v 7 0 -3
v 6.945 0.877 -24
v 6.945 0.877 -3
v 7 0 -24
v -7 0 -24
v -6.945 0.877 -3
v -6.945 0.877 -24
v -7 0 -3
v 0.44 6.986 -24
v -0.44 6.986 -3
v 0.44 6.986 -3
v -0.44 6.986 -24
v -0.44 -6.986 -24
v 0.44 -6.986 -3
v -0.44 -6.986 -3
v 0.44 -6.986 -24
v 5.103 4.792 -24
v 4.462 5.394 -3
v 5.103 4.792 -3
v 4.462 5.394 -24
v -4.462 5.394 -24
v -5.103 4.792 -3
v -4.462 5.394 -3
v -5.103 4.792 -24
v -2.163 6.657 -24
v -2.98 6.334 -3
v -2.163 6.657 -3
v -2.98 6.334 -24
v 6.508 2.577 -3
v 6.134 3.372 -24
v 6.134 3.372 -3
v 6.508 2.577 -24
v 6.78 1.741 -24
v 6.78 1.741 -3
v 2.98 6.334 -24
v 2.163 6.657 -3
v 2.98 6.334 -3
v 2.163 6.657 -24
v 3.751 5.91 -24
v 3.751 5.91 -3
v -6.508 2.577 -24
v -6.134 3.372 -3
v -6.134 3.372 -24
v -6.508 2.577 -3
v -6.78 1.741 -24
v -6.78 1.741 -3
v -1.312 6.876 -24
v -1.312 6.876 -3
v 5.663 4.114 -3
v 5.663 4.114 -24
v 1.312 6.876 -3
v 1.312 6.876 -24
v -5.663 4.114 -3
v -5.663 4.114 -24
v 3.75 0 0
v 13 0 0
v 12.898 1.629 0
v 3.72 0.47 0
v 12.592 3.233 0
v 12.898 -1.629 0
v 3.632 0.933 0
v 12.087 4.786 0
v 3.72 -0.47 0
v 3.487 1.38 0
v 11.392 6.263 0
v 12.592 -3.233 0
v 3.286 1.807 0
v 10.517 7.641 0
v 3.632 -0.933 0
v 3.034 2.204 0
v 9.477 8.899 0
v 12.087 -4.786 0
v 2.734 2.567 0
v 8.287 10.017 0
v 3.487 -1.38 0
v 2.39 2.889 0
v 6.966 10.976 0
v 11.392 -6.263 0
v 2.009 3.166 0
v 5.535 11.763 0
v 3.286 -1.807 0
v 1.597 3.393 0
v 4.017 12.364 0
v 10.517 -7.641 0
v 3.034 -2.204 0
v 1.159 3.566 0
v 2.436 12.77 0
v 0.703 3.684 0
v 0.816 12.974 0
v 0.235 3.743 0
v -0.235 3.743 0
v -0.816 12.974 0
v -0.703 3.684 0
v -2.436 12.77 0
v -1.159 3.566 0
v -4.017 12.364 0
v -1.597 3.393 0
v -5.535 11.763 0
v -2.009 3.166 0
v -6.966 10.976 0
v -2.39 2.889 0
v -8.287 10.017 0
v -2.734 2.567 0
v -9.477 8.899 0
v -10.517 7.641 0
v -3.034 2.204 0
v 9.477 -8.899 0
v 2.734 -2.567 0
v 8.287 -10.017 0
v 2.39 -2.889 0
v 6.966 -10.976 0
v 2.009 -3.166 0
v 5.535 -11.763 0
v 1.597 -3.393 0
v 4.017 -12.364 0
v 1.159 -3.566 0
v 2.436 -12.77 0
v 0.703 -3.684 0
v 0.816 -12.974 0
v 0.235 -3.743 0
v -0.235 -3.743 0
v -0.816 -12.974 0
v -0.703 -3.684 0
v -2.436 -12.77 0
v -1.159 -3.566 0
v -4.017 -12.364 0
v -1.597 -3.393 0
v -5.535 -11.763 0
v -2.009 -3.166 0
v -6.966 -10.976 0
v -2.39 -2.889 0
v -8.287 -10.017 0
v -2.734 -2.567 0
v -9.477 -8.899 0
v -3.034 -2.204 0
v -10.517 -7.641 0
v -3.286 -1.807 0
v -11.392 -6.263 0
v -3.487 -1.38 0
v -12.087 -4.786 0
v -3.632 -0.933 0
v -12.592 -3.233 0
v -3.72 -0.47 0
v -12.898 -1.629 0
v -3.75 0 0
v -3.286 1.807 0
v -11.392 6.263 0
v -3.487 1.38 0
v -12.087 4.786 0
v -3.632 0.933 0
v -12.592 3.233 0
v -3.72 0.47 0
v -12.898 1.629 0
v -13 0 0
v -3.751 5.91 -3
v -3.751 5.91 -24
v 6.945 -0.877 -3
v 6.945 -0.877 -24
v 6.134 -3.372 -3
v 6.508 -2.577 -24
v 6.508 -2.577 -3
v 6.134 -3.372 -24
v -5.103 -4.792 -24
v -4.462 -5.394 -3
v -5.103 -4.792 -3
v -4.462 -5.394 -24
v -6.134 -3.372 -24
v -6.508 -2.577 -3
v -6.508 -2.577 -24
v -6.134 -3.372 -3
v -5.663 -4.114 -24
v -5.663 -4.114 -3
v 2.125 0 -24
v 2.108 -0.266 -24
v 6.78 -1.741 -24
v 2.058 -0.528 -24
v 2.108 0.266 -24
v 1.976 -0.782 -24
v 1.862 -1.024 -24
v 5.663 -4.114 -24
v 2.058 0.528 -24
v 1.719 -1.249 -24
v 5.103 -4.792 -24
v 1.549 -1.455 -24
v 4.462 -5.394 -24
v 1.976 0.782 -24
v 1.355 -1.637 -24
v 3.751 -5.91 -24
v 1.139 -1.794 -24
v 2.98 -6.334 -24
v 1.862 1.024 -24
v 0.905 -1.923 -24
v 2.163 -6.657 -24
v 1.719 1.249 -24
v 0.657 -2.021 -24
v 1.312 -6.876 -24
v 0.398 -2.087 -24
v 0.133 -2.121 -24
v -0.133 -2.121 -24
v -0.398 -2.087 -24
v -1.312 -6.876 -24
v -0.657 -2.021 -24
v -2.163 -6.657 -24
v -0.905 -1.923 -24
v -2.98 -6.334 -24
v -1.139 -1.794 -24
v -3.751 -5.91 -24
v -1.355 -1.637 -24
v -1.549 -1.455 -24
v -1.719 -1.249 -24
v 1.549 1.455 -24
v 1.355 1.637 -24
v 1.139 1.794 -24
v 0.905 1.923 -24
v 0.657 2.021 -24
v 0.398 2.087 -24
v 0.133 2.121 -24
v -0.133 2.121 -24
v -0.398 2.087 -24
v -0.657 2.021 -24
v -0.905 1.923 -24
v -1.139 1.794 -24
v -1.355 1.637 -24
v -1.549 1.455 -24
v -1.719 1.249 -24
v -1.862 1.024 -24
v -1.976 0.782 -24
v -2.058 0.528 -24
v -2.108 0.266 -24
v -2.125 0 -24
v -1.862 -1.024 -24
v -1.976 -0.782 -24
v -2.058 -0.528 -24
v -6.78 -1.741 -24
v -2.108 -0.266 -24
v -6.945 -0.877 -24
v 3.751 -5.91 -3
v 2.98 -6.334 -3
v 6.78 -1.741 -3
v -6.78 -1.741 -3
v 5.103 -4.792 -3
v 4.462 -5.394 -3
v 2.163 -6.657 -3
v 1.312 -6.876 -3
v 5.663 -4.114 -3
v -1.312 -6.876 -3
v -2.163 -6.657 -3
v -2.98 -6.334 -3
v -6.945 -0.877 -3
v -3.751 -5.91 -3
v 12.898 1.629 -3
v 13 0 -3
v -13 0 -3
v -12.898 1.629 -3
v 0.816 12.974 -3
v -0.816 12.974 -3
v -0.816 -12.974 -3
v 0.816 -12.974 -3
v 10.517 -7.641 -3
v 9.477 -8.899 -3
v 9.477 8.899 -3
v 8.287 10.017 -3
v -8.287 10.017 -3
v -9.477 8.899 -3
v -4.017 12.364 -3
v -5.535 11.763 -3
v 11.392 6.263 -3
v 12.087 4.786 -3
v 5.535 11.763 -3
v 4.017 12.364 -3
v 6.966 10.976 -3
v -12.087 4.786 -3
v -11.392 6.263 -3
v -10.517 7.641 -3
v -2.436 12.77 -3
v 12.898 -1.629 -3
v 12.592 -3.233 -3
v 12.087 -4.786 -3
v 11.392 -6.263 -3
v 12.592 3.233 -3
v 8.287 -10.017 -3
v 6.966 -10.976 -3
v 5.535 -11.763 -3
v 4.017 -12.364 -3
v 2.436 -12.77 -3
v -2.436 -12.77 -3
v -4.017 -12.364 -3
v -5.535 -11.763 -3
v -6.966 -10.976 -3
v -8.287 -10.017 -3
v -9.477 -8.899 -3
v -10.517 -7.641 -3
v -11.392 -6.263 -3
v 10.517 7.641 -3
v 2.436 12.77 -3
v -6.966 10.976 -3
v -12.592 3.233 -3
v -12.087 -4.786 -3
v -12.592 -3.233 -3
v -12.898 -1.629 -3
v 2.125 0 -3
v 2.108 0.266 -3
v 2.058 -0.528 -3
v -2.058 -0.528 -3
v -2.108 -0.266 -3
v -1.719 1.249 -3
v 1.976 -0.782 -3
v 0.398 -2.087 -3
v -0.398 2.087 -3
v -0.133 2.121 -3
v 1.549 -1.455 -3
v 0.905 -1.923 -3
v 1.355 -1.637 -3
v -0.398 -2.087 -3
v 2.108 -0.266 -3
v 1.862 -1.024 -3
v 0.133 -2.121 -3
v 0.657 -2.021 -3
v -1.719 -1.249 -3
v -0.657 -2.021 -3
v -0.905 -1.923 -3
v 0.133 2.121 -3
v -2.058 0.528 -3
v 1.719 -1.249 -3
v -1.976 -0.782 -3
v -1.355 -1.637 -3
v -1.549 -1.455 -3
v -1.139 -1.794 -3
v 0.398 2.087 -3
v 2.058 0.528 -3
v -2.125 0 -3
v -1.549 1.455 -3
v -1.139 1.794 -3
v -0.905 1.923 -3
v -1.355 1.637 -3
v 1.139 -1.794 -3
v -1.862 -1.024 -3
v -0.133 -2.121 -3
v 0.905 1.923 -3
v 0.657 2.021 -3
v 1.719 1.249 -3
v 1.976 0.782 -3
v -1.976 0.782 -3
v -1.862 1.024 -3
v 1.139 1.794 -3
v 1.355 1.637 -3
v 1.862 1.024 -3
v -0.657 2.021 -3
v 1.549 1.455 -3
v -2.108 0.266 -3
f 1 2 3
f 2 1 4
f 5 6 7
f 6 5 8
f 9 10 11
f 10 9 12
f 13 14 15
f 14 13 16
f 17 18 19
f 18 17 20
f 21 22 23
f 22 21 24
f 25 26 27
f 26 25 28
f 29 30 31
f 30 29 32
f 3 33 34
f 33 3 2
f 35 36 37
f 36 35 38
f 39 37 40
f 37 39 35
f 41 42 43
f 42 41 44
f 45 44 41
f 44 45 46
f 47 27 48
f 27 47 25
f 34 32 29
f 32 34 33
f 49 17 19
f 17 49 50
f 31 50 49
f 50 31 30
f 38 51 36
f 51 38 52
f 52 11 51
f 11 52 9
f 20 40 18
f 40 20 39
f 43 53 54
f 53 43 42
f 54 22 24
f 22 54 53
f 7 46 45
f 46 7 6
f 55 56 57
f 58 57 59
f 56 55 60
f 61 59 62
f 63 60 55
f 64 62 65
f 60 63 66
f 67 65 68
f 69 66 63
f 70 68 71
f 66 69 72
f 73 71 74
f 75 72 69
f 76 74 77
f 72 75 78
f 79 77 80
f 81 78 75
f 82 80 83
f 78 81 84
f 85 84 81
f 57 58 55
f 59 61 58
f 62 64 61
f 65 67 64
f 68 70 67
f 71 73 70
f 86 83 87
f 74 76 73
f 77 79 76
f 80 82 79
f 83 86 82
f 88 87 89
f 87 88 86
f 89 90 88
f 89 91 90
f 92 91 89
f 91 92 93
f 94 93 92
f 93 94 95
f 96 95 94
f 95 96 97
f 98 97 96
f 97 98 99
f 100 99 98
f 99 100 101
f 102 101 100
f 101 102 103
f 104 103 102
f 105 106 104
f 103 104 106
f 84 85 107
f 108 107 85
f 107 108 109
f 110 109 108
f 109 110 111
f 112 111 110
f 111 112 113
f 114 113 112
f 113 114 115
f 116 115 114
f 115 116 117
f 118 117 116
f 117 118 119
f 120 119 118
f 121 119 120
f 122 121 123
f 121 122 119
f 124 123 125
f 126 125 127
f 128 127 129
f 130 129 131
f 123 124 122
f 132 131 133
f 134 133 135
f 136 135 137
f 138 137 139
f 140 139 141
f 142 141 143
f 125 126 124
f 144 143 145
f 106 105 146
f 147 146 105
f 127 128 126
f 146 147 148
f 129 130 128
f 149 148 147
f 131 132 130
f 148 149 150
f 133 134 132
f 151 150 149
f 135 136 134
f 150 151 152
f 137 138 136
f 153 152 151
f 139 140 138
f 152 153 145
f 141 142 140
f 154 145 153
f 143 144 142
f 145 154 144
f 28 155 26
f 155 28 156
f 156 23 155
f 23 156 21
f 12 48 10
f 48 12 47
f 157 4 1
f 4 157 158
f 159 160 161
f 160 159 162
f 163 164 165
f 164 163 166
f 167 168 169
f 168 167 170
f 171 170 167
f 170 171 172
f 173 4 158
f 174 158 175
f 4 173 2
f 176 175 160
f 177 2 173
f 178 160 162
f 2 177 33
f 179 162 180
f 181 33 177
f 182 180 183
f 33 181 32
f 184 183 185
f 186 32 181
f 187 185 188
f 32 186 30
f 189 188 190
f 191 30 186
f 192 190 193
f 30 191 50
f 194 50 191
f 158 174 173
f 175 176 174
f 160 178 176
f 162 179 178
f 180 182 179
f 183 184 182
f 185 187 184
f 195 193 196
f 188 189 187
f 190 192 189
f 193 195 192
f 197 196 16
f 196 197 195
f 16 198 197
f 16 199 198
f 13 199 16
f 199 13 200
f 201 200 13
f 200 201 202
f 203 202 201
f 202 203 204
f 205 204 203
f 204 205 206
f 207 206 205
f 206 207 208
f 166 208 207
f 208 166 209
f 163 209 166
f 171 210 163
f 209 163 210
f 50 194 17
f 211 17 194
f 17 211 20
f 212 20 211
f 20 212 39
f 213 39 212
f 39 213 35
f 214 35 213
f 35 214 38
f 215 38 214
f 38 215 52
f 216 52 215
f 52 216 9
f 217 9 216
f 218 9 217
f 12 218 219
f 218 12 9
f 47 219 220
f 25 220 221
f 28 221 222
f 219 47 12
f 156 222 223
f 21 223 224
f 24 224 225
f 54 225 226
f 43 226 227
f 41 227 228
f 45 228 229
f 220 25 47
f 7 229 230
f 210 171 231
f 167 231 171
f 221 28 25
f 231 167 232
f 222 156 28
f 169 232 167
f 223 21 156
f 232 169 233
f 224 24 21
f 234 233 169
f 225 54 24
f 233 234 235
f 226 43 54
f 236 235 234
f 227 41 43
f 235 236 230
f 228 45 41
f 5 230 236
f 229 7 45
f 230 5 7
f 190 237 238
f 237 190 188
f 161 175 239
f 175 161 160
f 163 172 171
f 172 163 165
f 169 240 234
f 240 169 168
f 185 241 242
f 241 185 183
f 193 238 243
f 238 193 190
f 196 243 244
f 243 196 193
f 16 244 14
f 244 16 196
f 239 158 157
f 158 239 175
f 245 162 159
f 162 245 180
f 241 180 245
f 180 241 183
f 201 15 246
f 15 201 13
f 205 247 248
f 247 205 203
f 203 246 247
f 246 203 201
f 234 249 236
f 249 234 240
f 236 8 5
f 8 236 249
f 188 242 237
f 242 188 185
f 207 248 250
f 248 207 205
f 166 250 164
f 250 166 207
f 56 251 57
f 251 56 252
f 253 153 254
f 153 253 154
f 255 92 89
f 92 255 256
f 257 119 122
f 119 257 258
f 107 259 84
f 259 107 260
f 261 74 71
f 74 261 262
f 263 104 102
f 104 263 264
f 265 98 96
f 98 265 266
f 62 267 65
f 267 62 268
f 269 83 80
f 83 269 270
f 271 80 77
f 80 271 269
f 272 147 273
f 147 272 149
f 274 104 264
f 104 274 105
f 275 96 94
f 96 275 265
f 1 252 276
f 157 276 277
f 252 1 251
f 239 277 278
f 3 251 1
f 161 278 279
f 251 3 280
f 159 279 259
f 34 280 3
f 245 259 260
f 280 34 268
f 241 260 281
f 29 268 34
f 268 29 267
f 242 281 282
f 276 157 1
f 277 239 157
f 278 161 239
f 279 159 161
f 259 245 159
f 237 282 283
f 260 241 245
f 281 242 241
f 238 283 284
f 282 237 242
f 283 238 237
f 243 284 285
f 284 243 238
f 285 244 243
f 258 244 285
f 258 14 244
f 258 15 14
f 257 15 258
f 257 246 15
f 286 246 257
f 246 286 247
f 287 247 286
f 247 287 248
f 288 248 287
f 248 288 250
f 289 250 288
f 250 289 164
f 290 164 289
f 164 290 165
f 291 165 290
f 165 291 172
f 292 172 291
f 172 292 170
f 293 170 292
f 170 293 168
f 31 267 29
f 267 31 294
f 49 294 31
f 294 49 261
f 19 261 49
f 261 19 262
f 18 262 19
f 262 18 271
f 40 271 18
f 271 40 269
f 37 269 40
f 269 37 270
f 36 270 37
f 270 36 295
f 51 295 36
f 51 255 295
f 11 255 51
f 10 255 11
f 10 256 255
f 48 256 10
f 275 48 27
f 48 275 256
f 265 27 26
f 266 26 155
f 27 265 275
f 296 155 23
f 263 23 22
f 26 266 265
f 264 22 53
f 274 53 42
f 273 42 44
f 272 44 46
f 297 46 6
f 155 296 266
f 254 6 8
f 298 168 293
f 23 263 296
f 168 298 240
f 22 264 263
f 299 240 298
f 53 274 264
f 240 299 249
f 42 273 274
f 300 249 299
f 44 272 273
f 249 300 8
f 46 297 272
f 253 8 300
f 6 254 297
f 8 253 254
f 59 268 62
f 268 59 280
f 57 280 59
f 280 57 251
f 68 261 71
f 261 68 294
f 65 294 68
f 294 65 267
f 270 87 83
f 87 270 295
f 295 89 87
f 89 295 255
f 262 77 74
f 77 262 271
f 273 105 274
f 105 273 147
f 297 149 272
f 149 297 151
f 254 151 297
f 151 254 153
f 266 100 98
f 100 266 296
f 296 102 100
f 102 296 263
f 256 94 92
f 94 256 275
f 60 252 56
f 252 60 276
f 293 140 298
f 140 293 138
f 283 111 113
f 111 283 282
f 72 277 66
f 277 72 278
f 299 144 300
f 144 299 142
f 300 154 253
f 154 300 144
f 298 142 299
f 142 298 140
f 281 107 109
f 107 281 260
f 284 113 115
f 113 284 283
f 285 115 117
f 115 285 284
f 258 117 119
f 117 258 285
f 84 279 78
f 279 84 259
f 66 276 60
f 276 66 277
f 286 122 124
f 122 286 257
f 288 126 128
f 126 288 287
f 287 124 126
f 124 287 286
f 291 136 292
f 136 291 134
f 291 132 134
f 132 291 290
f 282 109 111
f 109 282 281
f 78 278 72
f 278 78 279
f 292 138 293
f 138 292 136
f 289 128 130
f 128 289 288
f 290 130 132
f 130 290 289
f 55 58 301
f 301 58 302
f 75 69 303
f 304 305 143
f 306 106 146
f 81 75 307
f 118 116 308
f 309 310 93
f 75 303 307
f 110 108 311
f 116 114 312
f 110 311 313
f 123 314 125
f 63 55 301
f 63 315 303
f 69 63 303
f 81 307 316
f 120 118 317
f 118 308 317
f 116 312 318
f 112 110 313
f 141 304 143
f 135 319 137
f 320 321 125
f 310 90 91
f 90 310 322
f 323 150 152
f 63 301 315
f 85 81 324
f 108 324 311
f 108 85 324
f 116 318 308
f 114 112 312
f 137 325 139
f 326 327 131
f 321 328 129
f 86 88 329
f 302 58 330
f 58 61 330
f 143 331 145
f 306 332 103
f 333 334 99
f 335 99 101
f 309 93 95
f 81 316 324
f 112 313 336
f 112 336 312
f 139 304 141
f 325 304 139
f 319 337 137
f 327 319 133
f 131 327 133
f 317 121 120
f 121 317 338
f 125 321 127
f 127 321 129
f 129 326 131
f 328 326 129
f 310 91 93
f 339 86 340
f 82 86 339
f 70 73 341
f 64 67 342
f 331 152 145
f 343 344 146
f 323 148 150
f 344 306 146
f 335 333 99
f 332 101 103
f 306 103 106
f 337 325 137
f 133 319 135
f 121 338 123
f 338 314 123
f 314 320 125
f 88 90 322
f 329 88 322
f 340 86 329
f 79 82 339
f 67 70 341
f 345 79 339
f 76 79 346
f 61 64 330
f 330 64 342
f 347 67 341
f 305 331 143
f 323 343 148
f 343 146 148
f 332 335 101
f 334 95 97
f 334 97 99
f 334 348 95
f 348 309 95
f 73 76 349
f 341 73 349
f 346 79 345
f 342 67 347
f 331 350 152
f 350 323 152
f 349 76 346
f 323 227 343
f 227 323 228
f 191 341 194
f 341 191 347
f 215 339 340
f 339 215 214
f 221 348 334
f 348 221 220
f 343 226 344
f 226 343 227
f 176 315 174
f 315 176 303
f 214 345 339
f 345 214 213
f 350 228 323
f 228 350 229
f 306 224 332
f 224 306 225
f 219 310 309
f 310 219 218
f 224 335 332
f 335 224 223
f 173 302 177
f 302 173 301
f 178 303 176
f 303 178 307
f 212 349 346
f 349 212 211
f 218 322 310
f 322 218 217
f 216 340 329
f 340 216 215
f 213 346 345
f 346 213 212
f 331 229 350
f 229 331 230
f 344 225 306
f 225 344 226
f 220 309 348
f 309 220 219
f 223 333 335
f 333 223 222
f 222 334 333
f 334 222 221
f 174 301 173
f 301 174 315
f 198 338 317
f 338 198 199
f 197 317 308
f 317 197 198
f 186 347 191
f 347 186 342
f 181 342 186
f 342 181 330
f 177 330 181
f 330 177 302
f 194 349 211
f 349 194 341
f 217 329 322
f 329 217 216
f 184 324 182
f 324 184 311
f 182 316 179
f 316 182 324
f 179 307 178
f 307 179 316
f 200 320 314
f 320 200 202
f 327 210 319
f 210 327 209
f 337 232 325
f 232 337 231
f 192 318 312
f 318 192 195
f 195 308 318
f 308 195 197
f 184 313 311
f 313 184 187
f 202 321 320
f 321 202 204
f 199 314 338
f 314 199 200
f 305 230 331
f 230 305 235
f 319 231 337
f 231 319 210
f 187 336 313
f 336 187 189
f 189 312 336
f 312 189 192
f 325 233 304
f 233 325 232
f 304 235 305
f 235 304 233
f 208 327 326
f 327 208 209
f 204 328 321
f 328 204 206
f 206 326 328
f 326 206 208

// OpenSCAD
$fn = 50;


difference() {
	union() {
		translate(v = [0, 0, -24.0000000000]) {
			cylinder(h = 24, r = 7.0000000000);
		}
		translate(v = [0, 0, -3.0000000000]) {
			cylinder(h = 3, r = 13.0000000000);
		}
	}
	union() {
		translate(v = [0, 0, 0]) {
			rotate(a = [0, 0, 0]) {
				difference() {
					union() {
						#translate(v = [0, 0, -24.0000000000]) {
							cylinder(h = 24, r = 2.0000000000);
						}
						#translate(v = [0, 0, -3]) {
							cylinder(h = 3, r = 7.0000000000, r1 = 2.1250000000, r2 = 3.7500000000);
						}
						#translate(v = [0, 0, -24.0000000000]) {
							cylinder(h = 24, r = 2.1250000000);
						}
						#translate(v = [0, 0, -24.0000000000]) {
							cylinder(h = 24, r = 2.0000000000);
						}
					}
					union();
				}
			}
		}
	}
}
